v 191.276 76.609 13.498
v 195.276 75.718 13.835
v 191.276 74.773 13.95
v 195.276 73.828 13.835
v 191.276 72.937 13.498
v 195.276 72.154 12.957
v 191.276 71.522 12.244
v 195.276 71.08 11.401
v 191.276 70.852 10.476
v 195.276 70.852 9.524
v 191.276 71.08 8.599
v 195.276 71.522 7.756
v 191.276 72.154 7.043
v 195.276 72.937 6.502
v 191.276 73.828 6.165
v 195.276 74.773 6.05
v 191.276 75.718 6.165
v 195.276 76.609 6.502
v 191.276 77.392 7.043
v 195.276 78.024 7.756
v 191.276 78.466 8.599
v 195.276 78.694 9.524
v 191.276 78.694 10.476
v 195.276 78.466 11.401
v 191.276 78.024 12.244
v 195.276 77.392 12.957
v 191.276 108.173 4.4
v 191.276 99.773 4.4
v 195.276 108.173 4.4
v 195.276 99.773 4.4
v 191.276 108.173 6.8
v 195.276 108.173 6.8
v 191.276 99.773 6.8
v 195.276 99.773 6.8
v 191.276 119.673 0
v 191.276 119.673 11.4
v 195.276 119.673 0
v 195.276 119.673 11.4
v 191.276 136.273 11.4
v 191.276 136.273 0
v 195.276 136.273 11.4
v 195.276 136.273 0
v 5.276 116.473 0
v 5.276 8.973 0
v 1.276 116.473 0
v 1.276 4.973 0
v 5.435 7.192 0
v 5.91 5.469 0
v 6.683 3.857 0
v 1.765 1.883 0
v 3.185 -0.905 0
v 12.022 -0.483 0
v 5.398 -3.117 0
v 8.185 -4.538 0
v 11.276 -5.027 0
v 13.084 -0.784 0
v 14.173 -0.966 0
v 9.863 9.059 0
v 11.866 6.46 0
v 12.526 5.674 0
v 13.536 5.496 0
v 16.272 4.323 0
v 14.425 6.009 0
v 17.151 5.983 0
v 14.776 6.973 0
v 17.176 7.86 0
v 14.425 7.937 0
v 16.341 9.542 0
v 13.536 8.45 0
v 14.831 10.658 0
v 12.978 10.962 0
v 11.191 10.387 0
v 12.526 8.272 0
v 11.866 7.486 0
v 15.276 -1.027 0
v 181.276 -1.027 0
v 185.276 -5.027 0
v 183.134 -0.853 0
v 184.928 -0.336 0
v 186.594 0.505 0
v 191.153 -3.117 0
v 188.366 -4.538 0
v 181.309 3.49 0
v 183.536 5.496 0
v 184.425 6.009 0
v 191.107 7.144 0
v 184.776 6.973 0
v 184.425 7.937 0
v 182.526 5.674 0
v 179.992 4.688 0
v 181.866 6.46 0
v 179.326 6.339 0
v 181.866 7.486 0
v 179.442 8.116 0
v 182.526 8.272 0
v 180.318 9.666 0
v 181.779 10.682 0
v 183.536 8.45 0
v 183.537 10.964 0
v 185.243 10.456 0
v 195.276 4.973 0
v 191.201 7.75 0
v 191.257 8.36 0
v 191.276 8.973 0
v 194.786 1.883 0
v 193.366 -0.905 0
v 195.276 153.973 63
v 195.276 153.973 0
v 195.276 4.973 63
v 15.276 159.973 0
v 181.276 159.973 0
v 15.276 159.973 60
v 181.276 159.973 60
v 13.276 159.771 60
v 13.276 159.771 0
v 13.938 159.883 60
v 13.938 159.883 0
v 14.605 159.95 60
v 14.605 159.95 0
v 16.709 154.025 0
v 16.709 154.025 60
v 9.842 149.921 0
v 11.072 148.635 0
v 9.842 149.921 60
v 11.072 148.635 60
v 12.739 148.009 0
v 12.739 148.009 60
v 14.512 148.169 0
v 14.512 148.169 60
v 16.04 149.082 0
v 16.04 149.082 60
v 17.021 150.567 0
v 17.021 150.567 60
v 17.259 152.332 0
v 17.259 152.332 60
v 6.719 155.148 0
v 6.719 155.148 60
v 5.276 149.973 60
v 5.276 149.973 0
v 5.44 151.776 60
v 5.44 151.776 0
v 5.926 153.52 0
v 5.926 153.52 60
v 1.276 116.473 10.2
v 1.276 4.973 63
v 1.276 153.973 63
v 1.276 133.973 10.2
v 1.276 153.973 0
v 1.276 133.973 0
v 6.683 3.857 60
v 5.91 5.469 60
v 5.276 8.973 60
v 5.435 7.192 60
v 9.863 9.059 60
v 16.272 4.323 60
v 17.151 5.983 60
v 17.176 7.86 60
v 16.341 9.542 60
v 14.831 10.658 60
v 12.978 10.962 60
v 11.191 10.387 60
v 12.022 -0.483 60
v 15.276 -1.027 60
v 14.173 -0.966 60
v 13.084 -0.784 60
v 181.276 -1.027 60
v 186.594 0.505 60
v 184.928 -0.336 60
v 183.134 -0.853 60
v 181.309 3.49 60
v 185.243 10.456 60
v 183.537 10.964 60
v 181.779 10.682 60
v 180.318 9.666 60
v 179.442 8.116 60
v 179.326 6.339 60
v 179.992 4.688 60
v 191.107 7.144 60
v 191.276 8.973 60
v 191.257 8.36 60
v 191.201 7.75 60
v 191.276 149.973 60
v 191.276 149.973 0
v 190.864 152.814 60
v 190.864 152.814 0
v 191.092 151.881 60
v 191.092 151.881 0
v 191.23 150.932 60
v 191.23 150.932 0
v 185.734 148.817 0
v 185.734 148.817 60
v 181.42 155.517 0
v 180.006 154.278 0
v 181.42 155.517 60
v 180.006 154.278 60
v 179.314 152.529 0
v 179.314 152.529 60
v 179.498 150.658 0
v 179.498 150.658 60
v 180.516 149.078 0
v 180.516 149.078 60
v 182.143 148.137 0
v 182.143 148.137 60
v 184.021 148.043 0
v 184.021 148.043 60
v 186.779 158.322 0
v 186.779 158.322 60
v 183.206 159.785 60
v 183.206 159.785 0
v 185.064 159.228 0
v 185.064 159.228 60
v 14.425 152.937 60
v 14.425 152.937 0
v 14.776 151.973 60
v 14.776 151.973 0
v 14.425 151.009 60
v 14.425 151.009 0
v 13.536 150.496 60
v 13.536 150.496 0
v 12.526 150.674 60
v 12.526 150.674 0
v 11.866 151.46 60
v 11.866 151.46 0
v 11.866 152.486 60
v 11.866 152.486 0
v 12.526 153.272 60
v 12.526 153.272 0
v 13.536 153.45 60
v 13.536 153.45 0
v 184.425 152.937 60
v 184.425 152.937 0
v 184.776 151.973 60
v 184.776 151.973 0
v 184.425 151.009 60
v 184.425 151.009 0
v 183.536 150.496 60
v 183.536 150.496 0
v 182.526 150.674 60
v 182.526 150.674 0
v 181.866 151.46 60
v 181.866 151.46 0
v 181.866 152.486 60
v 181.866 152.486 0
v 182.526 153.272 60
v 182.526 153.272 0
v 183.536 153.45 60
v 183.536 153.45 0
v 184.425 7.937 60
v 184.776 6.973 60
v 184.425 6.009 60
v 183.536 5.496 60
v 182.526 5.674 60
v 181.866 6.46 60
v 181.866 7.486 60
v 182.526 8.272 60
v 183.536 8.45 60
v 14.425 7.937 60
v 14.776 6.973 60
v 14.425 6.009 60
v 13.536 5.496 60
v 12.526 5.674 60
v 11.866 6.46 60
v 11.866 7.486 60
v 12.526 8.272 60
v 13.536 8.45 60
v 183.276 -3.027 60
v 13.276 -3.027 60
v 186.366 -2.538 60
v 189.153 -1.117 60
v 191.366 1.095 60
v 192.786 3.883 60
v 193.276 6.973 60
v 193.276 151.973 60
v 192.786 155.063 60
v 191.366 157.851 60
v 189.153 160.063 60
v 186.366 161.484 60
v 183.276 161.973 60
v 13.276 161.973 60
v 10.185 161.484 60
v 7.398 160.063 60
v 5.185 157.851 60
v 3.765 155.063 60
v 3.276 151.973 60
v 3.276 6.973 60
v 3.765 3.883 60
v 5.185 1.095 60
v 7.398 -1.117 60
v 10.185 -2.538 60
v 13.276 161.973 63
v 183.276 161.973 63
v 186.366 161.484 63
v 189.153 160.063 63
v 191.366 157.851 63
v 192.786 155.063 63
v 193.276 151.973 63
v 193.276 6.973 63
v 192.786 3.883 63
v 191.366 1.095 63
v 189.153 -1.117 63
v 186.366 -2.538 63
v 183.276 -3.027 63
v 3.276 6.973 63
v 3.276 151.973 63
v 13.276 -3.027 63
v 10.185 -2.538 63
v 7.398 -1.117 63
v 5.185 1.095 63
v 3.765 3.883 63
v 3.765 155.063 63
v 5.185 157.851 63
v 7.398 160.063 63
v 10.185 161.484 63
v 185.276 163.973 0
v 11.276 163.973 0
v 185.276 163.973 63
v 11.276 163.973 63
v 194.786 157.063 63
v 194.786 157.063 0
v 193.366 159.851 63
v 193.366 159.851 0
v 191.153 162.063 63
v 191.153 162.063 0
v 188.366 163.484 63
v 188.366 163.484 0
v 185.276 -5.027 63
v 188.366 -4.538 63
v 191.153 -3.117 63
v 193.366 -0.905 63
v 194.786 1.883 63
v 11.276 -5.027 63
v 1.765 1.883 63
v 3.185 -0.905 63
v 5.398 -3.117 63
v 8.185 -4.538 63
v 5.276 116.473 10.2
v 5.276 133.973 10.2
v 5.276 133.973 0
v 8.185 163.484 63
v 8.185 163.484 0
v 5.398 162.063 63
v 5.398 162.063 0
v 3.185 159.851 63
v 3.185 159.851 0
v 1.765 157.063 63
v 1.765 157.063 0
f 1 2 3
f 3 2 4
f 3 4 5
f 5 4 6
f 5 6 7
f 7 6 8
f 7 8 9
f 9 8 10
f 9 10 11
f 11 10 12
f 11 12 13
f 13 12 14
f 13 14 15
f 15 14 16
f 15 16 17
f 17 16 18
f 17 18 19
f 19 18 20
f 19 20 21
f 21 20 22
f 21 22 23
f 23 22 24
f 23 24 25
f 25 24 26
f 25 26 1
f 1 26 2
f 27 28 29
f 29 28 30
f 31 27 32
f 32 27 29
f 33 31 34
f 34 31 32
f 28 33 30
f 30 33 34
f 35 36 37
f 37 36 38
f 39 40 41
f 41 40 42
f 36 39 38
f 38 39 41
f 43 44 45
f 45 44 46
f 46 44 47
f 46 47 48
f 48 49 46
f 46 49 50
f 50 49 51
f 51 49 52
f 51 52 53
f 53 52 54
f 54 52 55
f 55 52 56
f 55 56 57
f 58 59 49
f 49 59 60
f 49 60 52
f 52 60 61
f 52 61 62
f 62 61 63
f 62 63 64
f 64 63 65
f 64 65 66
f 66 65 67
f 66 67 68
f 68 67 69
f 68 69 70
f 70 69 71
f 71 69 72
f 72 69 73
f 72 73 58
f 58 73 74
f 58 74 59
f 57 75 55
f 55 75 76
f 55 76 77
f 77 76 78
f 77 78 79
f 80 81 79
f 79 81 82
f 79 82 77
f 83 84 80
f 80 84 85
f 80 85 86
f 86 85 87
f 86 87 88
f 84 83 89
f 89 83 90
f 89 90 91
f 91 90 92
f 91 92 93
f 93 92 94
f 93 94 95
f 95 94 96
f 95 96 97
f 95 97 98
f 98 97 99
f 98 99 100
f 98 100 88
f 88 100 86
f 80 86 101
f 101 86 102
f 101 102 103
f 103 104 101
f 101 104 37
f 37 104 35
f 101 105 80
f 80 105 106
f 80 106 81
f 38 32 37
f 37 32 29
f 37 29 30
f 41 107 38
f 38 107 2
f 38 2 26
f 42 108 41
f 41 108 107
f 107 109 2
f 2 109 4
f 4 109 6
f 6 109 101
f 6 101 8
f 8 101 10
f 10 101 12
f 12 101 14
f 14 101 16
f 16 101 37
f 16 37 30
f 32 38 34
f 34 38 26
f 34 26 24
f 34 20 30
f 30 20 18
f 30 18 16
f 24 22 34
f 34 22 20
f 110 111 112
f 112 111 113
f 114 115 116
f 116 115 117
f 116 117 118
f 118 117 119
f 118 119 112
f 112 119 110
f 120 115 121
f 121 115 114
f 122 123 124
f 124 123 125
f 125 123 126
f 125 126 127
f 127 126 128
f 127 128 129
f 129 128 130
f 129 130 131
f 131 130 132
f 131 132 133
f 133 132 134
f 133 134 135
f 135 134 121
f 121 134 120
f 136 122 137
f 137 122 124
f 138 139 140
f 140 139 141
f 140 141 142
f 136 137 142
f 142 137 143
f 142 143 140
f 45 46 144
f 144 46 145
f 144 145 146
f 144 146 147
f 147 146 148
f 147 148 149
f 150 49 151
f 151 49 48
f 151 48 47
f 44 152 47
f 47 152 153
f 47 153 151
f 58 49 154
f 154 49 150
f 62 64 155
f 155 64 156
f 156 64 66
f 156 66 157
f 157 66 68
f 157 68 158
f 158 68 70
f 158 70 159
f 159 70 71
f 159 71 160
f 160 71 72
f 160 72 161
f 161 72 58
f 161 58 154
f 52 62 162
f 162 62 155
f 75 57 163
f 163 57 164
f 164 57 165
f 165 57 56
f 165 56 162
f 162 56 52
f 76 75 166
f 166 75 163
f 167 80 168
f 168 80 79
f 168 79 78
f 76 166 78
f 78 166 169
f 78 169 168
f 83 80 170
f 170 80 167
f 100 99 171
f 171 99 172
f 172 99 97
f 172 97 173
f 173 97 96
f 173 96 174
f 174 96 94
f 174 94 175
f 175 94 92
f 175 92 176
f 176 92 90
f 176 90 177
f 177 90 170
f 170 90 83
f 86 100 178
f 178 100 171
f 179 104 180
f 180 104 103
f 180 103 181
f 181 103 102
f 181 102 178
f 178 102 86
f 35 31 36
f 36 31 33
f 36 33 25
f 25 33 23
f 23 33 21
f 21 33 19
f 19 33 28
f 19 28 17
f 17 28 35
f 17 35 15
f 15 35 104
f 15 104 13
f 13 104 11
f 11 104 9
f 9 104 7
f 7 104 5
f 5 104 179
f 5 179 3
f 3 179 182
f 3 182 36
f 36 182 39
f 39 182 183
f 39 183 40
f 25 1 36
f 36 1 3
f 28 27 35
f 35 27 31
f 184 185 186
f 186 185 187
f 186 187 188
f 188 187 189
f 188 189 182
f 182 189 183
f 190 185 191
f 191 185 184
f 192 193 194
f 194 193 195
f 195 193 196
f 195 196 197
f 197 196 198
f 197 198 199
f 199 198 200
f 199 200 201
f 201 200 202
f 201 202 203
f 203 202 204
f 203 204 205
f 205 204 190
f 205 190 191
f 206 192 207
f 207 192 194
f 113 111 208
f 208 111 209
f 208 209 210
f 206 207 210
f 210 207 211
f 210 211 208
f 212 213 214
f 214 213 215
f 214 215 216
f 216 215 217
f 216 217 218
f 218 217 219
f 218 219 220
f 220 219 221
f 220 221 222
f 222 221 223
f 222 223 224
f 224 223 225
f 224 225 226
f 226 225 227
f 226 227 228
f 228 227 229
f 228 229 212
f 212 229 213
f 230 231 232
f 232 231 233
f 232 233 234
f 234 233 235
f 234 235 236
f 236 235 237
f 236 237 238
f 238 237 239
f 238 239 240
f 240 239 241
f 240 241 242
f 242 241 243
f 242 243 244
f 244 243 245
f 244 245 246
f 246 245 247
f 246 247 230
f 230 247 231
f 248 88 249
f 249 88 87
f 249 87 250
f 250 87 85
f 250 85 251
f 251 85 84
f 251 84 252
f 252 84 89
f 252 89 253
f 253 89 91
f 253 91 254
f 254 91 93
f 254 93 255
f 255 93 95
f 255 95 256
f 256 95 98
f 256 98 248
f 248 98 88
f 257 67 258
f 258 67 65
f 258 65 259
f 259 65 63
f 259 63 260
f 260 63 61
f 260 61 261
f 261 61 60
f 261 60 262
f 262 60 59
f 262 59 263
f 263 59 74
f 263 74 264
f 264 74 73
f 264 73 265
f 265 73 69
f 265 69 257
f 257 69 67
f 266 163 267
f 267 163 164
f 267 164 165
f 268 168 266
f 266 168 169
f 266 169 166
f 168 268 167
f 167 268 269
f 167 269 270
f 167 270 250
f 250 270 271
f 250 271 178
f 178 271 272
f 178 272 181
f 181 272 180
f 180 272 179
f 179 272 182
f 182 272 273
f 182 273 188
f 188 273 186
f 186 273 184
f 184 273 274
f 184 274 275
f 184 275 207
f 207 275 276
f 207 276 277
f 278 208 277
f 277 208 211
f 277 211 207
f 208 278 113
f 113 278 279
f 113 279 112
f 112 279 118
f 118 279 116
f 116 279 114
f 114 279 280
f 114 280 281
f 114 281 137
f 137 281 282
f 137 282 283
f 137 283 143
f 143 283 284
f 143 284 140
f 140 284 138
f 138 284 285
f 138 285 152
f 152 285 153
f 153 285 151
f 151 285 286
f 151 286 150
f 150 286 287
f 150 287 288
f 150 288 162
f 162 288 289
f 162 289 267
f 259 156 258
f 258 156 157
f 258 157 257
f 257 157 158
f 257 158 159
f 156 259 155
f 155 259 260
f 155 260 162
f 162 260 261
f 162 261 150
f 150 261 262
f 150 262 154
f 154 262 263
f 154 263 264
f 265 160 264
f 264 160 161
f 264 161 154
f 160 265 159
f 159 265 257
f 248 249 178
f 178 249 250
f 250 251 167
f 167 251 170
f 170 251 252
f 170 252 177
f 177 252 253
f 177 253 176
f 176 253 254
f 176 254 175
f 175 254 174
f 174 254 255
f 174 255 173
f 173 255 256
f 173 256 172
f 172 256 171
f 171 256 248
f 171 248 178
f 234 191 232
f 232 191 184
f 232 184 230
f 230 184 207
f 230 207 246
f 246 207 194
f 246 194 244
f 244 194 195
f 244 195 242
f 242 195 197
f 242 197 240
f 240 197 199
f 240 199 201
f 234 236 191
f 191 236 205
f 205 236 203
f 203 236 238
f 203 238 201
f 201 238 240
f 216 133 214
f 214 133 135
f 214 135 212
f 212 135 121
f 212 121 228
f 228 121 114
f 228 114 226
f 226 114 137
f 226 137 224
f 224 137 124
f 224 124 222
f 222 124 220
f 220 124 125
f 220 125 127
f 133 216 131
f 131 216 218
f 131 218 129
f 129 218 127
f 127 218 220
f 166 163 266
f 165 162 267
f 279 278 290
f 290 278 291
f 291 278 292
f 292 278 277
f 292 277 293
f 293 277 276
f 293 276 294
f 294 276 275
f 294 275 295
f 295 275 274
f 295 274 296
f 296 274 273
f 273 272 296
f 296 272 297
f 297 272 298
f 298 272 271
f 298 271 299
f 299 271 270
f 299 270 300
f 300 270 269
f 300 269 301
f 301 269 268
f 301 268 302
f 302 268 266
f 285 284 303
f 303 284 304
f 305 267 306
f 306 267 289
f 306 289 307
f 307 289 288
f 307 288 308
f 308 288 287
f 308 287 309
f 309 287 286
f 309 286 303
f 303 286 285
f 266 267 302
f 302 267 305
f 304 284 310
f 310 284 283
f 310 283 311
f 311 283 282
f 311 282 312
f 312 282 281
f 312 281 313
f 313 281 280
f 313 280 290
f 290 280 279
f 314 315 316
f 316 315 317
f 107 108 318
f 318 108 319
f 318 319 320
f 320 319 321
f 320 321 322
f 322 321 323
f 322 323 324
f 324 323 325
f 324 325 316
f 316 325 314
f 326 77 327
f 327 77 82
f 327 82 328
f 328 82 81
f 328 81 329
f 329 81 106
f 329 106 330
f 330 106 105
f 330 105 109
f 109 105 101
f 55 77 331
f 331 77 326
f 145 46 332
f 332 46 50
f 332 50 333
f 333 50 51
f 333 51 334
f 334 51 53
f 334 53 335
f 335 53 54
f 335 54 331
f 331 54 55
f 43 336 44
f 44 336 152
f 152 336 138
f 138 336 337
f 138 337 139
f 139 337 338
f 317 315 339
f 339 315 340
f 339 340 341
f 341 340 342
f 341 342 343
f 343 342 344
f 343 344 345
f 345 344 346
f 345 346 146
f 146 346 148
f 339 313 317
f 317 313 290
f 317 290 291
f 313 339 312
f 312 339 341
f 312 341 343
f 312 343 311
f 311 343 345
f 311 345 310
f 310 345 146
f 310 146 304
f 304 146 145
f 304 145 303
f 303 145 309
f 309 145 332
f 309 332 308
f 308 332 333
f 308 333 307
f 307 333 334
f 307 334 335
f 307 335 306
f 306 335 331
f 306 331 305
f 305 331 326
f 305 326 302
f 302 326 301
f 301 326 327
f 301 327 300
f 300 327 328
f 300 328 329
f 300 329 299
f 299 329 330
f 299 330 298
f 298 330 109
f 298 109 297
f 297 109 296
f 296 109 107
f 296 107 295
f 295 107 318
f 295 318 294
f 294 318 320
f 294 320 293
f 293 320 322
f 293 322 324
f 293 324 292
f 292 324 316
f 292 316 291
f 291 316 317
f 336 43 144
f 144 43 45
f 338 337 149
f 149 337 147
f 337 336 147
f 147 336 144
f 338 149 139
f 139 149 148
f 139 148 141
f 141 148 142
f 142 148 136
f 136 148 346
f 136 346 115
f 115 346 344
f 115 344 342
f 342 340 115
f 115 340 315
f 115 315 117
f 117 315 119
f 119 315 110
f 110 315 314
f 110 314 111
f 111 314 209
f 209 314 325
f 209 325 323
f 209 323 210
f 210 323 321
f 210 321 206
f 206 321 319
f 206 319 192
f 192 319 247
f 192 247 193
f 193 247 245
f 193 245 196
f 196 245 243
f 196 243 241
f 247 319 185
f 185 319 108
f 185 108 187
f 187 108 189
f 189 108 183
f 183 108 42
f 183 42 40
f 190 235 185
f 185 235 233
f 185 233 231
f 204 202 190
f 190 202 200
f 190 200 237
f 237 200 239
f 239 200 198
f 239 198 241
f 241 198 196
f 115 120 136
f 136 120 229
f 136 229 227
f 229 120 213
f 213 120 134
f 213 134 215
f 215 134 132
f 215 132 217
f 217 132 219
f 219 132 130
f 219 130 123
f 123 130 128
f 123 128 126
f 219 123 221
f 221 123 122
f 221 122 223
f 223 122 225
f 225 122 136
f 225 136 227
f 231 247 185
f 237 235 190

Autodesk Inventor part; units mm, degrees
ref_plane "YZ Plane" through (0, 0, 0) normal (1, 0, 0) x (0, 1, 0)
ref_plane "XZ Plane" through (0, 0, 0) normal (0, 1, 0) x (-1, 0, 0)
ref_plane "XY Plane" through (0, 0, 0) normal (0, 0, 1) x (1, 0, 0)
sketch "Sketch1" plane through (0, 0, 0) normal (0, 0, 1) x (1, 0, 0)
  line L0 (13.2756, 161.973) -> (183.2756, 161.973)
  line L1 (193.2756, 151.973) -> (193.2756, 6.973)
  line L2 (183.2756, -3.027) -> (13.2756, -3.027)
  line L3 (3.2756, 6.973) -> (3.2756, 151.973)
  arc A0 (13.2756, 161.973) -> (3.2756, 151.973) centre (13.2756, 151.973) ccw
  arc A1 (193.2756, 151.973) -> (183.2756, 161.973) centre (183.2756, 151.973) ccw
  arc A2 (183.2756, -3.027) -> (193.2756, 6.973) centre (183.2756, 6.973) ccw
  arc A3 (3.2756, 6.973) -> (13.2756, -3.027) centre (13.2756, 6.973) ccw
  circle A4 centre (13.2756, 151.973) radius 1.5
  circle A5 centre (183.2756, 151.973) radius 1.5
  circle A6 centre (183.2756, 6.973) radius 1.5
  circle A7 centre (13.2756, 6.973) radius 1.5
  line L4 (15.2756, 159.973) -> (181.2756, 159.973)
  line L5 (191.2756, 149.973) -> (191.2756, 8.973)
  line L6 (181.2756, -1.027) -> (15.2756, -1.027)
  line L7 (5.2756, 8.973) -> (5.2756, 149.973)
  line L8 (11.2756, 163.973) -> (185.2756, 163.973)
  line L9 (195.2756, 153.973) -> (195.2756, 4.973)
  line L10 (185.2756, -5.027) -> (11.2756, -5.027)
  line L11 (1.2756, 4.973) -> (1.2756, 153.973)
  arc A8 (195.2756, 153.973) -> (185.2756, 163.973) centre (185.2756, 153.973) ccw
  arc A9 (11.2756, 163.973) -> (1.2756, 153.973) centre (11.2756, 153.973) ccw
  arc A10 (1.2756, 4.973) -> (11.2756, -5.027) centre (11.2756, 4.973) ccw
  arc A11 (185.2756, -5.027) -> (195.2756, 4.973) centre (185.2756, 4.973) ccw
  arc A12 (9.8418, 149.9214) -> (16.7094, 154.0246) centre (13.2756, 151.973) ccw
  line L12 (16.7094, 154.0246) -> (13.2761, 159.771)
  line L13 (16.7094, 154.0246) -> (9.8418, 149.9214) construction
  line L14 (9.8418, 149.9214) -> (6.7189, 155.1482)
  arc A13 (15.2756, 159.973) -> (13.2761, 159.771) centre (15.2756, 149.973) ccw
  arc A14 (6.7189, 155.1482) -> (5.2756, 149.973) centre (15.2756, 149.973) ccw
  arc A15 (181.4201, 155.5166) -> (185.7337, 148.8174) centre (183.2756, 151.973) ccw
  arc A16 (185.2426, 10.4559) -> (181.3086, 3.49) centre (183.2756, 6.973) ccw
  arc A17 (16.2722, 4.3233) -> (9.8626, 9.059) centre (13.2756, 6.973) ccw
  line L15 (185.7337, 148.8174) -> (190.8637, 152.8135)
  line L16 (185.7337, 148.8174) -> (181.4201, 155.5166) construction
  line L17 (181.4201, 155.5166) -> (186.7789, 158.3225)
  arc A18 (191.2756, 149.973) -> (190.8637, 152.8135) centre (181.2756, 149.973) ccw
  arc A19 (186.7789, 158.3225) -> (181.2756, 159.973) centre (181.2756, 149.973) ccw
  line L18 (16.2722, 4.3233) -> (12.0222, -0.483)
  line L19 (16.2722, 4.3233) -> (9.8626, 9.059) construction
  line L20 (9.8626, 9.059) -> (6.6833, 3.8571)
  arc A20 (5.2756, 8.973) -> (6.6833, 3.8571) centre (15.2756, 8.973) ccw
  arc A21 (12.0222, -0.483) -> (15.2756, -1.027) centre (15.2756, 8.973) ccw
  line L21 (185.2426, 10.4559) -> (191.1069, 7.144)
  line L22 (185.2426, 10.4559) -> (181.3086, 3.49) construction
  line L23 (181.3086, 3.49) -> (186.5944, 0.5048)
  arc A22 (181.2756, -1.027) -> (186.5944, 0.5048) centre (181.2756, 8.973) ccw
  arc A23 (191.1069, 7.144) -> (191.2756, 8.973) centre (181.2756, 8.973) ccw
  point P0 (0, 0)
  point P1 (193.2756, -3.027)
  point P2 (193.2756, 161.973)
  point P3 (3.2756, -3.027)
  point P4 (191.2756, -1.027)
  point P5 (191.2756, 159.973)
  point P6 (5.2756, -1.027)
  point P7 (195.2756, -5.027)
  point P8 (195.2756, 163.973)
  point P9 (1.2756, -5.027)
  dimension "d0" = 190
  dimension "d1" = 165
  dimension "d2" = 10
  dimension "a" = 3
  dimension "d4" = 3
  dimension "d5" = 3
  dimension "d6" = 3
  dimension "d7" = 186
  dimension "d8" = 161
  dimension "d9" = 2
  dimension "d10" = 2
  dimension "d11" = 2
  dimension "d12" = 2
  dimension "d14" = 194
  dimension "d15" = 169
  dimension "d16" = 2
  dimension "d17" = 2
  dimension "d18" = 10
  dimension "d19" = 8
  dimension "d20" = 8
  dimension "d21" = 8
  dimension "d22" = 8
extrude "Extrusion1" add sketch "Sketch1" along normal blind 63 contours L8 A8 L9 A11 L10 A10 L11 A9
extrude "Extrusion2" add sketch "Sketch1" along normal blind 60 contours L0 A1 L1 A2 L2 A3 L3 A0
sketch "Sketch2" plane through (195.2756, 4.973, 0) normal (1, 0, 0) x (0, 0, -1)
  line L0 (0, 0) -> (0, 149) construction
  line L1 (0, 149) -> (-63, 149) construction
  line L2 (-63, 0) -> (-63, 149) construction
  line L3 (0, 0) -> (-63, 0) construction
  line L4 (-11.4, 114.7) -> (0, 114.7)
  line L5 (0, 114.7) -> (0, 131.3)
  line L6 (0, 131.3) -> (-11.4, 131.3)
  line L7 (-11.4, 131.3) -> (-11.4, 114.7)
  line L8 (0, 0) -> (0, 149) projected
  line L9 (0, 94.8) -> (-6.8, 94.8)
  line L10 (-6.8, 94.8) -> (-6.8, 103.2)
  line L11 (-6.8, 103.2) -> (0, 103.2)
  line L12 (0, 103.2) -> (0, 94.8)
  line L13 (0, 94.8) -> (-4.4, 94.8)
  line L14 (-4.4, 94.8) -> (-4.4, 103.2)
  line L15 (-4.4, 103.2) -> (0, 103.2)
  line L16 (0, 103.2) -> (0, 94.8)
  circle A0 centre (-10, 69.8) radius 3.95
  point P0 (0, -4.973)
  dimension "d27" = 11.4
  dimension "d28" = 16.6
  dimension "d29" = 17.7
  dimension "d30" = 11.5
  dimension "d31" = 6.8
  dimension "d32" = 8.4
  dimension "d33" = 4.4
  dimension "d34" = 7.9
  dimension "d35" = 25
  dimension "d36" = 10
extrude "Extrusion3" cut sketch "Sketch2" against normal blind 10 contours L7 L6 L5 L4 | L14 L9 L10 L11 | A0
sketch "Sketch3" plane through (1.2756, 4.973, 0) normal (-1, 0, 0) x (0, 0, 1)
  line L0 (0, 149) -> (0, 0) projected
  line L1 (0, 0) -> (63, 0) projected
  line L2 (63, 149) -> (63, 0) projected
  line L3 (0, 149) -> (63, 149) projected
  line L4 (0, 4) -> (0, 145) projected
  line L5 (0, 129) -> (10.2, 129)
  line L6 (10.2, 129) -> (10.2, 111.5)
  line L7 (10.2, 111.5) -> (0, 111.5)
  line L8 (0, 111.5) -> (0, 129)
  point P0 (0, -4.973)
  point P1 (0, 111.5)
  dimension "d39" = 17.5
  dimension "d40" = 10.2
  dimension "d41" = 20
extrude "Extrusion4" cut sketch "Sketch3" against normal blind 10 contours L5 L6 L7 L0
equation "\"d4\" = a"
equation "\"d5\" = a"
equation "\"d6\" = a"
properties part number "Housing"
